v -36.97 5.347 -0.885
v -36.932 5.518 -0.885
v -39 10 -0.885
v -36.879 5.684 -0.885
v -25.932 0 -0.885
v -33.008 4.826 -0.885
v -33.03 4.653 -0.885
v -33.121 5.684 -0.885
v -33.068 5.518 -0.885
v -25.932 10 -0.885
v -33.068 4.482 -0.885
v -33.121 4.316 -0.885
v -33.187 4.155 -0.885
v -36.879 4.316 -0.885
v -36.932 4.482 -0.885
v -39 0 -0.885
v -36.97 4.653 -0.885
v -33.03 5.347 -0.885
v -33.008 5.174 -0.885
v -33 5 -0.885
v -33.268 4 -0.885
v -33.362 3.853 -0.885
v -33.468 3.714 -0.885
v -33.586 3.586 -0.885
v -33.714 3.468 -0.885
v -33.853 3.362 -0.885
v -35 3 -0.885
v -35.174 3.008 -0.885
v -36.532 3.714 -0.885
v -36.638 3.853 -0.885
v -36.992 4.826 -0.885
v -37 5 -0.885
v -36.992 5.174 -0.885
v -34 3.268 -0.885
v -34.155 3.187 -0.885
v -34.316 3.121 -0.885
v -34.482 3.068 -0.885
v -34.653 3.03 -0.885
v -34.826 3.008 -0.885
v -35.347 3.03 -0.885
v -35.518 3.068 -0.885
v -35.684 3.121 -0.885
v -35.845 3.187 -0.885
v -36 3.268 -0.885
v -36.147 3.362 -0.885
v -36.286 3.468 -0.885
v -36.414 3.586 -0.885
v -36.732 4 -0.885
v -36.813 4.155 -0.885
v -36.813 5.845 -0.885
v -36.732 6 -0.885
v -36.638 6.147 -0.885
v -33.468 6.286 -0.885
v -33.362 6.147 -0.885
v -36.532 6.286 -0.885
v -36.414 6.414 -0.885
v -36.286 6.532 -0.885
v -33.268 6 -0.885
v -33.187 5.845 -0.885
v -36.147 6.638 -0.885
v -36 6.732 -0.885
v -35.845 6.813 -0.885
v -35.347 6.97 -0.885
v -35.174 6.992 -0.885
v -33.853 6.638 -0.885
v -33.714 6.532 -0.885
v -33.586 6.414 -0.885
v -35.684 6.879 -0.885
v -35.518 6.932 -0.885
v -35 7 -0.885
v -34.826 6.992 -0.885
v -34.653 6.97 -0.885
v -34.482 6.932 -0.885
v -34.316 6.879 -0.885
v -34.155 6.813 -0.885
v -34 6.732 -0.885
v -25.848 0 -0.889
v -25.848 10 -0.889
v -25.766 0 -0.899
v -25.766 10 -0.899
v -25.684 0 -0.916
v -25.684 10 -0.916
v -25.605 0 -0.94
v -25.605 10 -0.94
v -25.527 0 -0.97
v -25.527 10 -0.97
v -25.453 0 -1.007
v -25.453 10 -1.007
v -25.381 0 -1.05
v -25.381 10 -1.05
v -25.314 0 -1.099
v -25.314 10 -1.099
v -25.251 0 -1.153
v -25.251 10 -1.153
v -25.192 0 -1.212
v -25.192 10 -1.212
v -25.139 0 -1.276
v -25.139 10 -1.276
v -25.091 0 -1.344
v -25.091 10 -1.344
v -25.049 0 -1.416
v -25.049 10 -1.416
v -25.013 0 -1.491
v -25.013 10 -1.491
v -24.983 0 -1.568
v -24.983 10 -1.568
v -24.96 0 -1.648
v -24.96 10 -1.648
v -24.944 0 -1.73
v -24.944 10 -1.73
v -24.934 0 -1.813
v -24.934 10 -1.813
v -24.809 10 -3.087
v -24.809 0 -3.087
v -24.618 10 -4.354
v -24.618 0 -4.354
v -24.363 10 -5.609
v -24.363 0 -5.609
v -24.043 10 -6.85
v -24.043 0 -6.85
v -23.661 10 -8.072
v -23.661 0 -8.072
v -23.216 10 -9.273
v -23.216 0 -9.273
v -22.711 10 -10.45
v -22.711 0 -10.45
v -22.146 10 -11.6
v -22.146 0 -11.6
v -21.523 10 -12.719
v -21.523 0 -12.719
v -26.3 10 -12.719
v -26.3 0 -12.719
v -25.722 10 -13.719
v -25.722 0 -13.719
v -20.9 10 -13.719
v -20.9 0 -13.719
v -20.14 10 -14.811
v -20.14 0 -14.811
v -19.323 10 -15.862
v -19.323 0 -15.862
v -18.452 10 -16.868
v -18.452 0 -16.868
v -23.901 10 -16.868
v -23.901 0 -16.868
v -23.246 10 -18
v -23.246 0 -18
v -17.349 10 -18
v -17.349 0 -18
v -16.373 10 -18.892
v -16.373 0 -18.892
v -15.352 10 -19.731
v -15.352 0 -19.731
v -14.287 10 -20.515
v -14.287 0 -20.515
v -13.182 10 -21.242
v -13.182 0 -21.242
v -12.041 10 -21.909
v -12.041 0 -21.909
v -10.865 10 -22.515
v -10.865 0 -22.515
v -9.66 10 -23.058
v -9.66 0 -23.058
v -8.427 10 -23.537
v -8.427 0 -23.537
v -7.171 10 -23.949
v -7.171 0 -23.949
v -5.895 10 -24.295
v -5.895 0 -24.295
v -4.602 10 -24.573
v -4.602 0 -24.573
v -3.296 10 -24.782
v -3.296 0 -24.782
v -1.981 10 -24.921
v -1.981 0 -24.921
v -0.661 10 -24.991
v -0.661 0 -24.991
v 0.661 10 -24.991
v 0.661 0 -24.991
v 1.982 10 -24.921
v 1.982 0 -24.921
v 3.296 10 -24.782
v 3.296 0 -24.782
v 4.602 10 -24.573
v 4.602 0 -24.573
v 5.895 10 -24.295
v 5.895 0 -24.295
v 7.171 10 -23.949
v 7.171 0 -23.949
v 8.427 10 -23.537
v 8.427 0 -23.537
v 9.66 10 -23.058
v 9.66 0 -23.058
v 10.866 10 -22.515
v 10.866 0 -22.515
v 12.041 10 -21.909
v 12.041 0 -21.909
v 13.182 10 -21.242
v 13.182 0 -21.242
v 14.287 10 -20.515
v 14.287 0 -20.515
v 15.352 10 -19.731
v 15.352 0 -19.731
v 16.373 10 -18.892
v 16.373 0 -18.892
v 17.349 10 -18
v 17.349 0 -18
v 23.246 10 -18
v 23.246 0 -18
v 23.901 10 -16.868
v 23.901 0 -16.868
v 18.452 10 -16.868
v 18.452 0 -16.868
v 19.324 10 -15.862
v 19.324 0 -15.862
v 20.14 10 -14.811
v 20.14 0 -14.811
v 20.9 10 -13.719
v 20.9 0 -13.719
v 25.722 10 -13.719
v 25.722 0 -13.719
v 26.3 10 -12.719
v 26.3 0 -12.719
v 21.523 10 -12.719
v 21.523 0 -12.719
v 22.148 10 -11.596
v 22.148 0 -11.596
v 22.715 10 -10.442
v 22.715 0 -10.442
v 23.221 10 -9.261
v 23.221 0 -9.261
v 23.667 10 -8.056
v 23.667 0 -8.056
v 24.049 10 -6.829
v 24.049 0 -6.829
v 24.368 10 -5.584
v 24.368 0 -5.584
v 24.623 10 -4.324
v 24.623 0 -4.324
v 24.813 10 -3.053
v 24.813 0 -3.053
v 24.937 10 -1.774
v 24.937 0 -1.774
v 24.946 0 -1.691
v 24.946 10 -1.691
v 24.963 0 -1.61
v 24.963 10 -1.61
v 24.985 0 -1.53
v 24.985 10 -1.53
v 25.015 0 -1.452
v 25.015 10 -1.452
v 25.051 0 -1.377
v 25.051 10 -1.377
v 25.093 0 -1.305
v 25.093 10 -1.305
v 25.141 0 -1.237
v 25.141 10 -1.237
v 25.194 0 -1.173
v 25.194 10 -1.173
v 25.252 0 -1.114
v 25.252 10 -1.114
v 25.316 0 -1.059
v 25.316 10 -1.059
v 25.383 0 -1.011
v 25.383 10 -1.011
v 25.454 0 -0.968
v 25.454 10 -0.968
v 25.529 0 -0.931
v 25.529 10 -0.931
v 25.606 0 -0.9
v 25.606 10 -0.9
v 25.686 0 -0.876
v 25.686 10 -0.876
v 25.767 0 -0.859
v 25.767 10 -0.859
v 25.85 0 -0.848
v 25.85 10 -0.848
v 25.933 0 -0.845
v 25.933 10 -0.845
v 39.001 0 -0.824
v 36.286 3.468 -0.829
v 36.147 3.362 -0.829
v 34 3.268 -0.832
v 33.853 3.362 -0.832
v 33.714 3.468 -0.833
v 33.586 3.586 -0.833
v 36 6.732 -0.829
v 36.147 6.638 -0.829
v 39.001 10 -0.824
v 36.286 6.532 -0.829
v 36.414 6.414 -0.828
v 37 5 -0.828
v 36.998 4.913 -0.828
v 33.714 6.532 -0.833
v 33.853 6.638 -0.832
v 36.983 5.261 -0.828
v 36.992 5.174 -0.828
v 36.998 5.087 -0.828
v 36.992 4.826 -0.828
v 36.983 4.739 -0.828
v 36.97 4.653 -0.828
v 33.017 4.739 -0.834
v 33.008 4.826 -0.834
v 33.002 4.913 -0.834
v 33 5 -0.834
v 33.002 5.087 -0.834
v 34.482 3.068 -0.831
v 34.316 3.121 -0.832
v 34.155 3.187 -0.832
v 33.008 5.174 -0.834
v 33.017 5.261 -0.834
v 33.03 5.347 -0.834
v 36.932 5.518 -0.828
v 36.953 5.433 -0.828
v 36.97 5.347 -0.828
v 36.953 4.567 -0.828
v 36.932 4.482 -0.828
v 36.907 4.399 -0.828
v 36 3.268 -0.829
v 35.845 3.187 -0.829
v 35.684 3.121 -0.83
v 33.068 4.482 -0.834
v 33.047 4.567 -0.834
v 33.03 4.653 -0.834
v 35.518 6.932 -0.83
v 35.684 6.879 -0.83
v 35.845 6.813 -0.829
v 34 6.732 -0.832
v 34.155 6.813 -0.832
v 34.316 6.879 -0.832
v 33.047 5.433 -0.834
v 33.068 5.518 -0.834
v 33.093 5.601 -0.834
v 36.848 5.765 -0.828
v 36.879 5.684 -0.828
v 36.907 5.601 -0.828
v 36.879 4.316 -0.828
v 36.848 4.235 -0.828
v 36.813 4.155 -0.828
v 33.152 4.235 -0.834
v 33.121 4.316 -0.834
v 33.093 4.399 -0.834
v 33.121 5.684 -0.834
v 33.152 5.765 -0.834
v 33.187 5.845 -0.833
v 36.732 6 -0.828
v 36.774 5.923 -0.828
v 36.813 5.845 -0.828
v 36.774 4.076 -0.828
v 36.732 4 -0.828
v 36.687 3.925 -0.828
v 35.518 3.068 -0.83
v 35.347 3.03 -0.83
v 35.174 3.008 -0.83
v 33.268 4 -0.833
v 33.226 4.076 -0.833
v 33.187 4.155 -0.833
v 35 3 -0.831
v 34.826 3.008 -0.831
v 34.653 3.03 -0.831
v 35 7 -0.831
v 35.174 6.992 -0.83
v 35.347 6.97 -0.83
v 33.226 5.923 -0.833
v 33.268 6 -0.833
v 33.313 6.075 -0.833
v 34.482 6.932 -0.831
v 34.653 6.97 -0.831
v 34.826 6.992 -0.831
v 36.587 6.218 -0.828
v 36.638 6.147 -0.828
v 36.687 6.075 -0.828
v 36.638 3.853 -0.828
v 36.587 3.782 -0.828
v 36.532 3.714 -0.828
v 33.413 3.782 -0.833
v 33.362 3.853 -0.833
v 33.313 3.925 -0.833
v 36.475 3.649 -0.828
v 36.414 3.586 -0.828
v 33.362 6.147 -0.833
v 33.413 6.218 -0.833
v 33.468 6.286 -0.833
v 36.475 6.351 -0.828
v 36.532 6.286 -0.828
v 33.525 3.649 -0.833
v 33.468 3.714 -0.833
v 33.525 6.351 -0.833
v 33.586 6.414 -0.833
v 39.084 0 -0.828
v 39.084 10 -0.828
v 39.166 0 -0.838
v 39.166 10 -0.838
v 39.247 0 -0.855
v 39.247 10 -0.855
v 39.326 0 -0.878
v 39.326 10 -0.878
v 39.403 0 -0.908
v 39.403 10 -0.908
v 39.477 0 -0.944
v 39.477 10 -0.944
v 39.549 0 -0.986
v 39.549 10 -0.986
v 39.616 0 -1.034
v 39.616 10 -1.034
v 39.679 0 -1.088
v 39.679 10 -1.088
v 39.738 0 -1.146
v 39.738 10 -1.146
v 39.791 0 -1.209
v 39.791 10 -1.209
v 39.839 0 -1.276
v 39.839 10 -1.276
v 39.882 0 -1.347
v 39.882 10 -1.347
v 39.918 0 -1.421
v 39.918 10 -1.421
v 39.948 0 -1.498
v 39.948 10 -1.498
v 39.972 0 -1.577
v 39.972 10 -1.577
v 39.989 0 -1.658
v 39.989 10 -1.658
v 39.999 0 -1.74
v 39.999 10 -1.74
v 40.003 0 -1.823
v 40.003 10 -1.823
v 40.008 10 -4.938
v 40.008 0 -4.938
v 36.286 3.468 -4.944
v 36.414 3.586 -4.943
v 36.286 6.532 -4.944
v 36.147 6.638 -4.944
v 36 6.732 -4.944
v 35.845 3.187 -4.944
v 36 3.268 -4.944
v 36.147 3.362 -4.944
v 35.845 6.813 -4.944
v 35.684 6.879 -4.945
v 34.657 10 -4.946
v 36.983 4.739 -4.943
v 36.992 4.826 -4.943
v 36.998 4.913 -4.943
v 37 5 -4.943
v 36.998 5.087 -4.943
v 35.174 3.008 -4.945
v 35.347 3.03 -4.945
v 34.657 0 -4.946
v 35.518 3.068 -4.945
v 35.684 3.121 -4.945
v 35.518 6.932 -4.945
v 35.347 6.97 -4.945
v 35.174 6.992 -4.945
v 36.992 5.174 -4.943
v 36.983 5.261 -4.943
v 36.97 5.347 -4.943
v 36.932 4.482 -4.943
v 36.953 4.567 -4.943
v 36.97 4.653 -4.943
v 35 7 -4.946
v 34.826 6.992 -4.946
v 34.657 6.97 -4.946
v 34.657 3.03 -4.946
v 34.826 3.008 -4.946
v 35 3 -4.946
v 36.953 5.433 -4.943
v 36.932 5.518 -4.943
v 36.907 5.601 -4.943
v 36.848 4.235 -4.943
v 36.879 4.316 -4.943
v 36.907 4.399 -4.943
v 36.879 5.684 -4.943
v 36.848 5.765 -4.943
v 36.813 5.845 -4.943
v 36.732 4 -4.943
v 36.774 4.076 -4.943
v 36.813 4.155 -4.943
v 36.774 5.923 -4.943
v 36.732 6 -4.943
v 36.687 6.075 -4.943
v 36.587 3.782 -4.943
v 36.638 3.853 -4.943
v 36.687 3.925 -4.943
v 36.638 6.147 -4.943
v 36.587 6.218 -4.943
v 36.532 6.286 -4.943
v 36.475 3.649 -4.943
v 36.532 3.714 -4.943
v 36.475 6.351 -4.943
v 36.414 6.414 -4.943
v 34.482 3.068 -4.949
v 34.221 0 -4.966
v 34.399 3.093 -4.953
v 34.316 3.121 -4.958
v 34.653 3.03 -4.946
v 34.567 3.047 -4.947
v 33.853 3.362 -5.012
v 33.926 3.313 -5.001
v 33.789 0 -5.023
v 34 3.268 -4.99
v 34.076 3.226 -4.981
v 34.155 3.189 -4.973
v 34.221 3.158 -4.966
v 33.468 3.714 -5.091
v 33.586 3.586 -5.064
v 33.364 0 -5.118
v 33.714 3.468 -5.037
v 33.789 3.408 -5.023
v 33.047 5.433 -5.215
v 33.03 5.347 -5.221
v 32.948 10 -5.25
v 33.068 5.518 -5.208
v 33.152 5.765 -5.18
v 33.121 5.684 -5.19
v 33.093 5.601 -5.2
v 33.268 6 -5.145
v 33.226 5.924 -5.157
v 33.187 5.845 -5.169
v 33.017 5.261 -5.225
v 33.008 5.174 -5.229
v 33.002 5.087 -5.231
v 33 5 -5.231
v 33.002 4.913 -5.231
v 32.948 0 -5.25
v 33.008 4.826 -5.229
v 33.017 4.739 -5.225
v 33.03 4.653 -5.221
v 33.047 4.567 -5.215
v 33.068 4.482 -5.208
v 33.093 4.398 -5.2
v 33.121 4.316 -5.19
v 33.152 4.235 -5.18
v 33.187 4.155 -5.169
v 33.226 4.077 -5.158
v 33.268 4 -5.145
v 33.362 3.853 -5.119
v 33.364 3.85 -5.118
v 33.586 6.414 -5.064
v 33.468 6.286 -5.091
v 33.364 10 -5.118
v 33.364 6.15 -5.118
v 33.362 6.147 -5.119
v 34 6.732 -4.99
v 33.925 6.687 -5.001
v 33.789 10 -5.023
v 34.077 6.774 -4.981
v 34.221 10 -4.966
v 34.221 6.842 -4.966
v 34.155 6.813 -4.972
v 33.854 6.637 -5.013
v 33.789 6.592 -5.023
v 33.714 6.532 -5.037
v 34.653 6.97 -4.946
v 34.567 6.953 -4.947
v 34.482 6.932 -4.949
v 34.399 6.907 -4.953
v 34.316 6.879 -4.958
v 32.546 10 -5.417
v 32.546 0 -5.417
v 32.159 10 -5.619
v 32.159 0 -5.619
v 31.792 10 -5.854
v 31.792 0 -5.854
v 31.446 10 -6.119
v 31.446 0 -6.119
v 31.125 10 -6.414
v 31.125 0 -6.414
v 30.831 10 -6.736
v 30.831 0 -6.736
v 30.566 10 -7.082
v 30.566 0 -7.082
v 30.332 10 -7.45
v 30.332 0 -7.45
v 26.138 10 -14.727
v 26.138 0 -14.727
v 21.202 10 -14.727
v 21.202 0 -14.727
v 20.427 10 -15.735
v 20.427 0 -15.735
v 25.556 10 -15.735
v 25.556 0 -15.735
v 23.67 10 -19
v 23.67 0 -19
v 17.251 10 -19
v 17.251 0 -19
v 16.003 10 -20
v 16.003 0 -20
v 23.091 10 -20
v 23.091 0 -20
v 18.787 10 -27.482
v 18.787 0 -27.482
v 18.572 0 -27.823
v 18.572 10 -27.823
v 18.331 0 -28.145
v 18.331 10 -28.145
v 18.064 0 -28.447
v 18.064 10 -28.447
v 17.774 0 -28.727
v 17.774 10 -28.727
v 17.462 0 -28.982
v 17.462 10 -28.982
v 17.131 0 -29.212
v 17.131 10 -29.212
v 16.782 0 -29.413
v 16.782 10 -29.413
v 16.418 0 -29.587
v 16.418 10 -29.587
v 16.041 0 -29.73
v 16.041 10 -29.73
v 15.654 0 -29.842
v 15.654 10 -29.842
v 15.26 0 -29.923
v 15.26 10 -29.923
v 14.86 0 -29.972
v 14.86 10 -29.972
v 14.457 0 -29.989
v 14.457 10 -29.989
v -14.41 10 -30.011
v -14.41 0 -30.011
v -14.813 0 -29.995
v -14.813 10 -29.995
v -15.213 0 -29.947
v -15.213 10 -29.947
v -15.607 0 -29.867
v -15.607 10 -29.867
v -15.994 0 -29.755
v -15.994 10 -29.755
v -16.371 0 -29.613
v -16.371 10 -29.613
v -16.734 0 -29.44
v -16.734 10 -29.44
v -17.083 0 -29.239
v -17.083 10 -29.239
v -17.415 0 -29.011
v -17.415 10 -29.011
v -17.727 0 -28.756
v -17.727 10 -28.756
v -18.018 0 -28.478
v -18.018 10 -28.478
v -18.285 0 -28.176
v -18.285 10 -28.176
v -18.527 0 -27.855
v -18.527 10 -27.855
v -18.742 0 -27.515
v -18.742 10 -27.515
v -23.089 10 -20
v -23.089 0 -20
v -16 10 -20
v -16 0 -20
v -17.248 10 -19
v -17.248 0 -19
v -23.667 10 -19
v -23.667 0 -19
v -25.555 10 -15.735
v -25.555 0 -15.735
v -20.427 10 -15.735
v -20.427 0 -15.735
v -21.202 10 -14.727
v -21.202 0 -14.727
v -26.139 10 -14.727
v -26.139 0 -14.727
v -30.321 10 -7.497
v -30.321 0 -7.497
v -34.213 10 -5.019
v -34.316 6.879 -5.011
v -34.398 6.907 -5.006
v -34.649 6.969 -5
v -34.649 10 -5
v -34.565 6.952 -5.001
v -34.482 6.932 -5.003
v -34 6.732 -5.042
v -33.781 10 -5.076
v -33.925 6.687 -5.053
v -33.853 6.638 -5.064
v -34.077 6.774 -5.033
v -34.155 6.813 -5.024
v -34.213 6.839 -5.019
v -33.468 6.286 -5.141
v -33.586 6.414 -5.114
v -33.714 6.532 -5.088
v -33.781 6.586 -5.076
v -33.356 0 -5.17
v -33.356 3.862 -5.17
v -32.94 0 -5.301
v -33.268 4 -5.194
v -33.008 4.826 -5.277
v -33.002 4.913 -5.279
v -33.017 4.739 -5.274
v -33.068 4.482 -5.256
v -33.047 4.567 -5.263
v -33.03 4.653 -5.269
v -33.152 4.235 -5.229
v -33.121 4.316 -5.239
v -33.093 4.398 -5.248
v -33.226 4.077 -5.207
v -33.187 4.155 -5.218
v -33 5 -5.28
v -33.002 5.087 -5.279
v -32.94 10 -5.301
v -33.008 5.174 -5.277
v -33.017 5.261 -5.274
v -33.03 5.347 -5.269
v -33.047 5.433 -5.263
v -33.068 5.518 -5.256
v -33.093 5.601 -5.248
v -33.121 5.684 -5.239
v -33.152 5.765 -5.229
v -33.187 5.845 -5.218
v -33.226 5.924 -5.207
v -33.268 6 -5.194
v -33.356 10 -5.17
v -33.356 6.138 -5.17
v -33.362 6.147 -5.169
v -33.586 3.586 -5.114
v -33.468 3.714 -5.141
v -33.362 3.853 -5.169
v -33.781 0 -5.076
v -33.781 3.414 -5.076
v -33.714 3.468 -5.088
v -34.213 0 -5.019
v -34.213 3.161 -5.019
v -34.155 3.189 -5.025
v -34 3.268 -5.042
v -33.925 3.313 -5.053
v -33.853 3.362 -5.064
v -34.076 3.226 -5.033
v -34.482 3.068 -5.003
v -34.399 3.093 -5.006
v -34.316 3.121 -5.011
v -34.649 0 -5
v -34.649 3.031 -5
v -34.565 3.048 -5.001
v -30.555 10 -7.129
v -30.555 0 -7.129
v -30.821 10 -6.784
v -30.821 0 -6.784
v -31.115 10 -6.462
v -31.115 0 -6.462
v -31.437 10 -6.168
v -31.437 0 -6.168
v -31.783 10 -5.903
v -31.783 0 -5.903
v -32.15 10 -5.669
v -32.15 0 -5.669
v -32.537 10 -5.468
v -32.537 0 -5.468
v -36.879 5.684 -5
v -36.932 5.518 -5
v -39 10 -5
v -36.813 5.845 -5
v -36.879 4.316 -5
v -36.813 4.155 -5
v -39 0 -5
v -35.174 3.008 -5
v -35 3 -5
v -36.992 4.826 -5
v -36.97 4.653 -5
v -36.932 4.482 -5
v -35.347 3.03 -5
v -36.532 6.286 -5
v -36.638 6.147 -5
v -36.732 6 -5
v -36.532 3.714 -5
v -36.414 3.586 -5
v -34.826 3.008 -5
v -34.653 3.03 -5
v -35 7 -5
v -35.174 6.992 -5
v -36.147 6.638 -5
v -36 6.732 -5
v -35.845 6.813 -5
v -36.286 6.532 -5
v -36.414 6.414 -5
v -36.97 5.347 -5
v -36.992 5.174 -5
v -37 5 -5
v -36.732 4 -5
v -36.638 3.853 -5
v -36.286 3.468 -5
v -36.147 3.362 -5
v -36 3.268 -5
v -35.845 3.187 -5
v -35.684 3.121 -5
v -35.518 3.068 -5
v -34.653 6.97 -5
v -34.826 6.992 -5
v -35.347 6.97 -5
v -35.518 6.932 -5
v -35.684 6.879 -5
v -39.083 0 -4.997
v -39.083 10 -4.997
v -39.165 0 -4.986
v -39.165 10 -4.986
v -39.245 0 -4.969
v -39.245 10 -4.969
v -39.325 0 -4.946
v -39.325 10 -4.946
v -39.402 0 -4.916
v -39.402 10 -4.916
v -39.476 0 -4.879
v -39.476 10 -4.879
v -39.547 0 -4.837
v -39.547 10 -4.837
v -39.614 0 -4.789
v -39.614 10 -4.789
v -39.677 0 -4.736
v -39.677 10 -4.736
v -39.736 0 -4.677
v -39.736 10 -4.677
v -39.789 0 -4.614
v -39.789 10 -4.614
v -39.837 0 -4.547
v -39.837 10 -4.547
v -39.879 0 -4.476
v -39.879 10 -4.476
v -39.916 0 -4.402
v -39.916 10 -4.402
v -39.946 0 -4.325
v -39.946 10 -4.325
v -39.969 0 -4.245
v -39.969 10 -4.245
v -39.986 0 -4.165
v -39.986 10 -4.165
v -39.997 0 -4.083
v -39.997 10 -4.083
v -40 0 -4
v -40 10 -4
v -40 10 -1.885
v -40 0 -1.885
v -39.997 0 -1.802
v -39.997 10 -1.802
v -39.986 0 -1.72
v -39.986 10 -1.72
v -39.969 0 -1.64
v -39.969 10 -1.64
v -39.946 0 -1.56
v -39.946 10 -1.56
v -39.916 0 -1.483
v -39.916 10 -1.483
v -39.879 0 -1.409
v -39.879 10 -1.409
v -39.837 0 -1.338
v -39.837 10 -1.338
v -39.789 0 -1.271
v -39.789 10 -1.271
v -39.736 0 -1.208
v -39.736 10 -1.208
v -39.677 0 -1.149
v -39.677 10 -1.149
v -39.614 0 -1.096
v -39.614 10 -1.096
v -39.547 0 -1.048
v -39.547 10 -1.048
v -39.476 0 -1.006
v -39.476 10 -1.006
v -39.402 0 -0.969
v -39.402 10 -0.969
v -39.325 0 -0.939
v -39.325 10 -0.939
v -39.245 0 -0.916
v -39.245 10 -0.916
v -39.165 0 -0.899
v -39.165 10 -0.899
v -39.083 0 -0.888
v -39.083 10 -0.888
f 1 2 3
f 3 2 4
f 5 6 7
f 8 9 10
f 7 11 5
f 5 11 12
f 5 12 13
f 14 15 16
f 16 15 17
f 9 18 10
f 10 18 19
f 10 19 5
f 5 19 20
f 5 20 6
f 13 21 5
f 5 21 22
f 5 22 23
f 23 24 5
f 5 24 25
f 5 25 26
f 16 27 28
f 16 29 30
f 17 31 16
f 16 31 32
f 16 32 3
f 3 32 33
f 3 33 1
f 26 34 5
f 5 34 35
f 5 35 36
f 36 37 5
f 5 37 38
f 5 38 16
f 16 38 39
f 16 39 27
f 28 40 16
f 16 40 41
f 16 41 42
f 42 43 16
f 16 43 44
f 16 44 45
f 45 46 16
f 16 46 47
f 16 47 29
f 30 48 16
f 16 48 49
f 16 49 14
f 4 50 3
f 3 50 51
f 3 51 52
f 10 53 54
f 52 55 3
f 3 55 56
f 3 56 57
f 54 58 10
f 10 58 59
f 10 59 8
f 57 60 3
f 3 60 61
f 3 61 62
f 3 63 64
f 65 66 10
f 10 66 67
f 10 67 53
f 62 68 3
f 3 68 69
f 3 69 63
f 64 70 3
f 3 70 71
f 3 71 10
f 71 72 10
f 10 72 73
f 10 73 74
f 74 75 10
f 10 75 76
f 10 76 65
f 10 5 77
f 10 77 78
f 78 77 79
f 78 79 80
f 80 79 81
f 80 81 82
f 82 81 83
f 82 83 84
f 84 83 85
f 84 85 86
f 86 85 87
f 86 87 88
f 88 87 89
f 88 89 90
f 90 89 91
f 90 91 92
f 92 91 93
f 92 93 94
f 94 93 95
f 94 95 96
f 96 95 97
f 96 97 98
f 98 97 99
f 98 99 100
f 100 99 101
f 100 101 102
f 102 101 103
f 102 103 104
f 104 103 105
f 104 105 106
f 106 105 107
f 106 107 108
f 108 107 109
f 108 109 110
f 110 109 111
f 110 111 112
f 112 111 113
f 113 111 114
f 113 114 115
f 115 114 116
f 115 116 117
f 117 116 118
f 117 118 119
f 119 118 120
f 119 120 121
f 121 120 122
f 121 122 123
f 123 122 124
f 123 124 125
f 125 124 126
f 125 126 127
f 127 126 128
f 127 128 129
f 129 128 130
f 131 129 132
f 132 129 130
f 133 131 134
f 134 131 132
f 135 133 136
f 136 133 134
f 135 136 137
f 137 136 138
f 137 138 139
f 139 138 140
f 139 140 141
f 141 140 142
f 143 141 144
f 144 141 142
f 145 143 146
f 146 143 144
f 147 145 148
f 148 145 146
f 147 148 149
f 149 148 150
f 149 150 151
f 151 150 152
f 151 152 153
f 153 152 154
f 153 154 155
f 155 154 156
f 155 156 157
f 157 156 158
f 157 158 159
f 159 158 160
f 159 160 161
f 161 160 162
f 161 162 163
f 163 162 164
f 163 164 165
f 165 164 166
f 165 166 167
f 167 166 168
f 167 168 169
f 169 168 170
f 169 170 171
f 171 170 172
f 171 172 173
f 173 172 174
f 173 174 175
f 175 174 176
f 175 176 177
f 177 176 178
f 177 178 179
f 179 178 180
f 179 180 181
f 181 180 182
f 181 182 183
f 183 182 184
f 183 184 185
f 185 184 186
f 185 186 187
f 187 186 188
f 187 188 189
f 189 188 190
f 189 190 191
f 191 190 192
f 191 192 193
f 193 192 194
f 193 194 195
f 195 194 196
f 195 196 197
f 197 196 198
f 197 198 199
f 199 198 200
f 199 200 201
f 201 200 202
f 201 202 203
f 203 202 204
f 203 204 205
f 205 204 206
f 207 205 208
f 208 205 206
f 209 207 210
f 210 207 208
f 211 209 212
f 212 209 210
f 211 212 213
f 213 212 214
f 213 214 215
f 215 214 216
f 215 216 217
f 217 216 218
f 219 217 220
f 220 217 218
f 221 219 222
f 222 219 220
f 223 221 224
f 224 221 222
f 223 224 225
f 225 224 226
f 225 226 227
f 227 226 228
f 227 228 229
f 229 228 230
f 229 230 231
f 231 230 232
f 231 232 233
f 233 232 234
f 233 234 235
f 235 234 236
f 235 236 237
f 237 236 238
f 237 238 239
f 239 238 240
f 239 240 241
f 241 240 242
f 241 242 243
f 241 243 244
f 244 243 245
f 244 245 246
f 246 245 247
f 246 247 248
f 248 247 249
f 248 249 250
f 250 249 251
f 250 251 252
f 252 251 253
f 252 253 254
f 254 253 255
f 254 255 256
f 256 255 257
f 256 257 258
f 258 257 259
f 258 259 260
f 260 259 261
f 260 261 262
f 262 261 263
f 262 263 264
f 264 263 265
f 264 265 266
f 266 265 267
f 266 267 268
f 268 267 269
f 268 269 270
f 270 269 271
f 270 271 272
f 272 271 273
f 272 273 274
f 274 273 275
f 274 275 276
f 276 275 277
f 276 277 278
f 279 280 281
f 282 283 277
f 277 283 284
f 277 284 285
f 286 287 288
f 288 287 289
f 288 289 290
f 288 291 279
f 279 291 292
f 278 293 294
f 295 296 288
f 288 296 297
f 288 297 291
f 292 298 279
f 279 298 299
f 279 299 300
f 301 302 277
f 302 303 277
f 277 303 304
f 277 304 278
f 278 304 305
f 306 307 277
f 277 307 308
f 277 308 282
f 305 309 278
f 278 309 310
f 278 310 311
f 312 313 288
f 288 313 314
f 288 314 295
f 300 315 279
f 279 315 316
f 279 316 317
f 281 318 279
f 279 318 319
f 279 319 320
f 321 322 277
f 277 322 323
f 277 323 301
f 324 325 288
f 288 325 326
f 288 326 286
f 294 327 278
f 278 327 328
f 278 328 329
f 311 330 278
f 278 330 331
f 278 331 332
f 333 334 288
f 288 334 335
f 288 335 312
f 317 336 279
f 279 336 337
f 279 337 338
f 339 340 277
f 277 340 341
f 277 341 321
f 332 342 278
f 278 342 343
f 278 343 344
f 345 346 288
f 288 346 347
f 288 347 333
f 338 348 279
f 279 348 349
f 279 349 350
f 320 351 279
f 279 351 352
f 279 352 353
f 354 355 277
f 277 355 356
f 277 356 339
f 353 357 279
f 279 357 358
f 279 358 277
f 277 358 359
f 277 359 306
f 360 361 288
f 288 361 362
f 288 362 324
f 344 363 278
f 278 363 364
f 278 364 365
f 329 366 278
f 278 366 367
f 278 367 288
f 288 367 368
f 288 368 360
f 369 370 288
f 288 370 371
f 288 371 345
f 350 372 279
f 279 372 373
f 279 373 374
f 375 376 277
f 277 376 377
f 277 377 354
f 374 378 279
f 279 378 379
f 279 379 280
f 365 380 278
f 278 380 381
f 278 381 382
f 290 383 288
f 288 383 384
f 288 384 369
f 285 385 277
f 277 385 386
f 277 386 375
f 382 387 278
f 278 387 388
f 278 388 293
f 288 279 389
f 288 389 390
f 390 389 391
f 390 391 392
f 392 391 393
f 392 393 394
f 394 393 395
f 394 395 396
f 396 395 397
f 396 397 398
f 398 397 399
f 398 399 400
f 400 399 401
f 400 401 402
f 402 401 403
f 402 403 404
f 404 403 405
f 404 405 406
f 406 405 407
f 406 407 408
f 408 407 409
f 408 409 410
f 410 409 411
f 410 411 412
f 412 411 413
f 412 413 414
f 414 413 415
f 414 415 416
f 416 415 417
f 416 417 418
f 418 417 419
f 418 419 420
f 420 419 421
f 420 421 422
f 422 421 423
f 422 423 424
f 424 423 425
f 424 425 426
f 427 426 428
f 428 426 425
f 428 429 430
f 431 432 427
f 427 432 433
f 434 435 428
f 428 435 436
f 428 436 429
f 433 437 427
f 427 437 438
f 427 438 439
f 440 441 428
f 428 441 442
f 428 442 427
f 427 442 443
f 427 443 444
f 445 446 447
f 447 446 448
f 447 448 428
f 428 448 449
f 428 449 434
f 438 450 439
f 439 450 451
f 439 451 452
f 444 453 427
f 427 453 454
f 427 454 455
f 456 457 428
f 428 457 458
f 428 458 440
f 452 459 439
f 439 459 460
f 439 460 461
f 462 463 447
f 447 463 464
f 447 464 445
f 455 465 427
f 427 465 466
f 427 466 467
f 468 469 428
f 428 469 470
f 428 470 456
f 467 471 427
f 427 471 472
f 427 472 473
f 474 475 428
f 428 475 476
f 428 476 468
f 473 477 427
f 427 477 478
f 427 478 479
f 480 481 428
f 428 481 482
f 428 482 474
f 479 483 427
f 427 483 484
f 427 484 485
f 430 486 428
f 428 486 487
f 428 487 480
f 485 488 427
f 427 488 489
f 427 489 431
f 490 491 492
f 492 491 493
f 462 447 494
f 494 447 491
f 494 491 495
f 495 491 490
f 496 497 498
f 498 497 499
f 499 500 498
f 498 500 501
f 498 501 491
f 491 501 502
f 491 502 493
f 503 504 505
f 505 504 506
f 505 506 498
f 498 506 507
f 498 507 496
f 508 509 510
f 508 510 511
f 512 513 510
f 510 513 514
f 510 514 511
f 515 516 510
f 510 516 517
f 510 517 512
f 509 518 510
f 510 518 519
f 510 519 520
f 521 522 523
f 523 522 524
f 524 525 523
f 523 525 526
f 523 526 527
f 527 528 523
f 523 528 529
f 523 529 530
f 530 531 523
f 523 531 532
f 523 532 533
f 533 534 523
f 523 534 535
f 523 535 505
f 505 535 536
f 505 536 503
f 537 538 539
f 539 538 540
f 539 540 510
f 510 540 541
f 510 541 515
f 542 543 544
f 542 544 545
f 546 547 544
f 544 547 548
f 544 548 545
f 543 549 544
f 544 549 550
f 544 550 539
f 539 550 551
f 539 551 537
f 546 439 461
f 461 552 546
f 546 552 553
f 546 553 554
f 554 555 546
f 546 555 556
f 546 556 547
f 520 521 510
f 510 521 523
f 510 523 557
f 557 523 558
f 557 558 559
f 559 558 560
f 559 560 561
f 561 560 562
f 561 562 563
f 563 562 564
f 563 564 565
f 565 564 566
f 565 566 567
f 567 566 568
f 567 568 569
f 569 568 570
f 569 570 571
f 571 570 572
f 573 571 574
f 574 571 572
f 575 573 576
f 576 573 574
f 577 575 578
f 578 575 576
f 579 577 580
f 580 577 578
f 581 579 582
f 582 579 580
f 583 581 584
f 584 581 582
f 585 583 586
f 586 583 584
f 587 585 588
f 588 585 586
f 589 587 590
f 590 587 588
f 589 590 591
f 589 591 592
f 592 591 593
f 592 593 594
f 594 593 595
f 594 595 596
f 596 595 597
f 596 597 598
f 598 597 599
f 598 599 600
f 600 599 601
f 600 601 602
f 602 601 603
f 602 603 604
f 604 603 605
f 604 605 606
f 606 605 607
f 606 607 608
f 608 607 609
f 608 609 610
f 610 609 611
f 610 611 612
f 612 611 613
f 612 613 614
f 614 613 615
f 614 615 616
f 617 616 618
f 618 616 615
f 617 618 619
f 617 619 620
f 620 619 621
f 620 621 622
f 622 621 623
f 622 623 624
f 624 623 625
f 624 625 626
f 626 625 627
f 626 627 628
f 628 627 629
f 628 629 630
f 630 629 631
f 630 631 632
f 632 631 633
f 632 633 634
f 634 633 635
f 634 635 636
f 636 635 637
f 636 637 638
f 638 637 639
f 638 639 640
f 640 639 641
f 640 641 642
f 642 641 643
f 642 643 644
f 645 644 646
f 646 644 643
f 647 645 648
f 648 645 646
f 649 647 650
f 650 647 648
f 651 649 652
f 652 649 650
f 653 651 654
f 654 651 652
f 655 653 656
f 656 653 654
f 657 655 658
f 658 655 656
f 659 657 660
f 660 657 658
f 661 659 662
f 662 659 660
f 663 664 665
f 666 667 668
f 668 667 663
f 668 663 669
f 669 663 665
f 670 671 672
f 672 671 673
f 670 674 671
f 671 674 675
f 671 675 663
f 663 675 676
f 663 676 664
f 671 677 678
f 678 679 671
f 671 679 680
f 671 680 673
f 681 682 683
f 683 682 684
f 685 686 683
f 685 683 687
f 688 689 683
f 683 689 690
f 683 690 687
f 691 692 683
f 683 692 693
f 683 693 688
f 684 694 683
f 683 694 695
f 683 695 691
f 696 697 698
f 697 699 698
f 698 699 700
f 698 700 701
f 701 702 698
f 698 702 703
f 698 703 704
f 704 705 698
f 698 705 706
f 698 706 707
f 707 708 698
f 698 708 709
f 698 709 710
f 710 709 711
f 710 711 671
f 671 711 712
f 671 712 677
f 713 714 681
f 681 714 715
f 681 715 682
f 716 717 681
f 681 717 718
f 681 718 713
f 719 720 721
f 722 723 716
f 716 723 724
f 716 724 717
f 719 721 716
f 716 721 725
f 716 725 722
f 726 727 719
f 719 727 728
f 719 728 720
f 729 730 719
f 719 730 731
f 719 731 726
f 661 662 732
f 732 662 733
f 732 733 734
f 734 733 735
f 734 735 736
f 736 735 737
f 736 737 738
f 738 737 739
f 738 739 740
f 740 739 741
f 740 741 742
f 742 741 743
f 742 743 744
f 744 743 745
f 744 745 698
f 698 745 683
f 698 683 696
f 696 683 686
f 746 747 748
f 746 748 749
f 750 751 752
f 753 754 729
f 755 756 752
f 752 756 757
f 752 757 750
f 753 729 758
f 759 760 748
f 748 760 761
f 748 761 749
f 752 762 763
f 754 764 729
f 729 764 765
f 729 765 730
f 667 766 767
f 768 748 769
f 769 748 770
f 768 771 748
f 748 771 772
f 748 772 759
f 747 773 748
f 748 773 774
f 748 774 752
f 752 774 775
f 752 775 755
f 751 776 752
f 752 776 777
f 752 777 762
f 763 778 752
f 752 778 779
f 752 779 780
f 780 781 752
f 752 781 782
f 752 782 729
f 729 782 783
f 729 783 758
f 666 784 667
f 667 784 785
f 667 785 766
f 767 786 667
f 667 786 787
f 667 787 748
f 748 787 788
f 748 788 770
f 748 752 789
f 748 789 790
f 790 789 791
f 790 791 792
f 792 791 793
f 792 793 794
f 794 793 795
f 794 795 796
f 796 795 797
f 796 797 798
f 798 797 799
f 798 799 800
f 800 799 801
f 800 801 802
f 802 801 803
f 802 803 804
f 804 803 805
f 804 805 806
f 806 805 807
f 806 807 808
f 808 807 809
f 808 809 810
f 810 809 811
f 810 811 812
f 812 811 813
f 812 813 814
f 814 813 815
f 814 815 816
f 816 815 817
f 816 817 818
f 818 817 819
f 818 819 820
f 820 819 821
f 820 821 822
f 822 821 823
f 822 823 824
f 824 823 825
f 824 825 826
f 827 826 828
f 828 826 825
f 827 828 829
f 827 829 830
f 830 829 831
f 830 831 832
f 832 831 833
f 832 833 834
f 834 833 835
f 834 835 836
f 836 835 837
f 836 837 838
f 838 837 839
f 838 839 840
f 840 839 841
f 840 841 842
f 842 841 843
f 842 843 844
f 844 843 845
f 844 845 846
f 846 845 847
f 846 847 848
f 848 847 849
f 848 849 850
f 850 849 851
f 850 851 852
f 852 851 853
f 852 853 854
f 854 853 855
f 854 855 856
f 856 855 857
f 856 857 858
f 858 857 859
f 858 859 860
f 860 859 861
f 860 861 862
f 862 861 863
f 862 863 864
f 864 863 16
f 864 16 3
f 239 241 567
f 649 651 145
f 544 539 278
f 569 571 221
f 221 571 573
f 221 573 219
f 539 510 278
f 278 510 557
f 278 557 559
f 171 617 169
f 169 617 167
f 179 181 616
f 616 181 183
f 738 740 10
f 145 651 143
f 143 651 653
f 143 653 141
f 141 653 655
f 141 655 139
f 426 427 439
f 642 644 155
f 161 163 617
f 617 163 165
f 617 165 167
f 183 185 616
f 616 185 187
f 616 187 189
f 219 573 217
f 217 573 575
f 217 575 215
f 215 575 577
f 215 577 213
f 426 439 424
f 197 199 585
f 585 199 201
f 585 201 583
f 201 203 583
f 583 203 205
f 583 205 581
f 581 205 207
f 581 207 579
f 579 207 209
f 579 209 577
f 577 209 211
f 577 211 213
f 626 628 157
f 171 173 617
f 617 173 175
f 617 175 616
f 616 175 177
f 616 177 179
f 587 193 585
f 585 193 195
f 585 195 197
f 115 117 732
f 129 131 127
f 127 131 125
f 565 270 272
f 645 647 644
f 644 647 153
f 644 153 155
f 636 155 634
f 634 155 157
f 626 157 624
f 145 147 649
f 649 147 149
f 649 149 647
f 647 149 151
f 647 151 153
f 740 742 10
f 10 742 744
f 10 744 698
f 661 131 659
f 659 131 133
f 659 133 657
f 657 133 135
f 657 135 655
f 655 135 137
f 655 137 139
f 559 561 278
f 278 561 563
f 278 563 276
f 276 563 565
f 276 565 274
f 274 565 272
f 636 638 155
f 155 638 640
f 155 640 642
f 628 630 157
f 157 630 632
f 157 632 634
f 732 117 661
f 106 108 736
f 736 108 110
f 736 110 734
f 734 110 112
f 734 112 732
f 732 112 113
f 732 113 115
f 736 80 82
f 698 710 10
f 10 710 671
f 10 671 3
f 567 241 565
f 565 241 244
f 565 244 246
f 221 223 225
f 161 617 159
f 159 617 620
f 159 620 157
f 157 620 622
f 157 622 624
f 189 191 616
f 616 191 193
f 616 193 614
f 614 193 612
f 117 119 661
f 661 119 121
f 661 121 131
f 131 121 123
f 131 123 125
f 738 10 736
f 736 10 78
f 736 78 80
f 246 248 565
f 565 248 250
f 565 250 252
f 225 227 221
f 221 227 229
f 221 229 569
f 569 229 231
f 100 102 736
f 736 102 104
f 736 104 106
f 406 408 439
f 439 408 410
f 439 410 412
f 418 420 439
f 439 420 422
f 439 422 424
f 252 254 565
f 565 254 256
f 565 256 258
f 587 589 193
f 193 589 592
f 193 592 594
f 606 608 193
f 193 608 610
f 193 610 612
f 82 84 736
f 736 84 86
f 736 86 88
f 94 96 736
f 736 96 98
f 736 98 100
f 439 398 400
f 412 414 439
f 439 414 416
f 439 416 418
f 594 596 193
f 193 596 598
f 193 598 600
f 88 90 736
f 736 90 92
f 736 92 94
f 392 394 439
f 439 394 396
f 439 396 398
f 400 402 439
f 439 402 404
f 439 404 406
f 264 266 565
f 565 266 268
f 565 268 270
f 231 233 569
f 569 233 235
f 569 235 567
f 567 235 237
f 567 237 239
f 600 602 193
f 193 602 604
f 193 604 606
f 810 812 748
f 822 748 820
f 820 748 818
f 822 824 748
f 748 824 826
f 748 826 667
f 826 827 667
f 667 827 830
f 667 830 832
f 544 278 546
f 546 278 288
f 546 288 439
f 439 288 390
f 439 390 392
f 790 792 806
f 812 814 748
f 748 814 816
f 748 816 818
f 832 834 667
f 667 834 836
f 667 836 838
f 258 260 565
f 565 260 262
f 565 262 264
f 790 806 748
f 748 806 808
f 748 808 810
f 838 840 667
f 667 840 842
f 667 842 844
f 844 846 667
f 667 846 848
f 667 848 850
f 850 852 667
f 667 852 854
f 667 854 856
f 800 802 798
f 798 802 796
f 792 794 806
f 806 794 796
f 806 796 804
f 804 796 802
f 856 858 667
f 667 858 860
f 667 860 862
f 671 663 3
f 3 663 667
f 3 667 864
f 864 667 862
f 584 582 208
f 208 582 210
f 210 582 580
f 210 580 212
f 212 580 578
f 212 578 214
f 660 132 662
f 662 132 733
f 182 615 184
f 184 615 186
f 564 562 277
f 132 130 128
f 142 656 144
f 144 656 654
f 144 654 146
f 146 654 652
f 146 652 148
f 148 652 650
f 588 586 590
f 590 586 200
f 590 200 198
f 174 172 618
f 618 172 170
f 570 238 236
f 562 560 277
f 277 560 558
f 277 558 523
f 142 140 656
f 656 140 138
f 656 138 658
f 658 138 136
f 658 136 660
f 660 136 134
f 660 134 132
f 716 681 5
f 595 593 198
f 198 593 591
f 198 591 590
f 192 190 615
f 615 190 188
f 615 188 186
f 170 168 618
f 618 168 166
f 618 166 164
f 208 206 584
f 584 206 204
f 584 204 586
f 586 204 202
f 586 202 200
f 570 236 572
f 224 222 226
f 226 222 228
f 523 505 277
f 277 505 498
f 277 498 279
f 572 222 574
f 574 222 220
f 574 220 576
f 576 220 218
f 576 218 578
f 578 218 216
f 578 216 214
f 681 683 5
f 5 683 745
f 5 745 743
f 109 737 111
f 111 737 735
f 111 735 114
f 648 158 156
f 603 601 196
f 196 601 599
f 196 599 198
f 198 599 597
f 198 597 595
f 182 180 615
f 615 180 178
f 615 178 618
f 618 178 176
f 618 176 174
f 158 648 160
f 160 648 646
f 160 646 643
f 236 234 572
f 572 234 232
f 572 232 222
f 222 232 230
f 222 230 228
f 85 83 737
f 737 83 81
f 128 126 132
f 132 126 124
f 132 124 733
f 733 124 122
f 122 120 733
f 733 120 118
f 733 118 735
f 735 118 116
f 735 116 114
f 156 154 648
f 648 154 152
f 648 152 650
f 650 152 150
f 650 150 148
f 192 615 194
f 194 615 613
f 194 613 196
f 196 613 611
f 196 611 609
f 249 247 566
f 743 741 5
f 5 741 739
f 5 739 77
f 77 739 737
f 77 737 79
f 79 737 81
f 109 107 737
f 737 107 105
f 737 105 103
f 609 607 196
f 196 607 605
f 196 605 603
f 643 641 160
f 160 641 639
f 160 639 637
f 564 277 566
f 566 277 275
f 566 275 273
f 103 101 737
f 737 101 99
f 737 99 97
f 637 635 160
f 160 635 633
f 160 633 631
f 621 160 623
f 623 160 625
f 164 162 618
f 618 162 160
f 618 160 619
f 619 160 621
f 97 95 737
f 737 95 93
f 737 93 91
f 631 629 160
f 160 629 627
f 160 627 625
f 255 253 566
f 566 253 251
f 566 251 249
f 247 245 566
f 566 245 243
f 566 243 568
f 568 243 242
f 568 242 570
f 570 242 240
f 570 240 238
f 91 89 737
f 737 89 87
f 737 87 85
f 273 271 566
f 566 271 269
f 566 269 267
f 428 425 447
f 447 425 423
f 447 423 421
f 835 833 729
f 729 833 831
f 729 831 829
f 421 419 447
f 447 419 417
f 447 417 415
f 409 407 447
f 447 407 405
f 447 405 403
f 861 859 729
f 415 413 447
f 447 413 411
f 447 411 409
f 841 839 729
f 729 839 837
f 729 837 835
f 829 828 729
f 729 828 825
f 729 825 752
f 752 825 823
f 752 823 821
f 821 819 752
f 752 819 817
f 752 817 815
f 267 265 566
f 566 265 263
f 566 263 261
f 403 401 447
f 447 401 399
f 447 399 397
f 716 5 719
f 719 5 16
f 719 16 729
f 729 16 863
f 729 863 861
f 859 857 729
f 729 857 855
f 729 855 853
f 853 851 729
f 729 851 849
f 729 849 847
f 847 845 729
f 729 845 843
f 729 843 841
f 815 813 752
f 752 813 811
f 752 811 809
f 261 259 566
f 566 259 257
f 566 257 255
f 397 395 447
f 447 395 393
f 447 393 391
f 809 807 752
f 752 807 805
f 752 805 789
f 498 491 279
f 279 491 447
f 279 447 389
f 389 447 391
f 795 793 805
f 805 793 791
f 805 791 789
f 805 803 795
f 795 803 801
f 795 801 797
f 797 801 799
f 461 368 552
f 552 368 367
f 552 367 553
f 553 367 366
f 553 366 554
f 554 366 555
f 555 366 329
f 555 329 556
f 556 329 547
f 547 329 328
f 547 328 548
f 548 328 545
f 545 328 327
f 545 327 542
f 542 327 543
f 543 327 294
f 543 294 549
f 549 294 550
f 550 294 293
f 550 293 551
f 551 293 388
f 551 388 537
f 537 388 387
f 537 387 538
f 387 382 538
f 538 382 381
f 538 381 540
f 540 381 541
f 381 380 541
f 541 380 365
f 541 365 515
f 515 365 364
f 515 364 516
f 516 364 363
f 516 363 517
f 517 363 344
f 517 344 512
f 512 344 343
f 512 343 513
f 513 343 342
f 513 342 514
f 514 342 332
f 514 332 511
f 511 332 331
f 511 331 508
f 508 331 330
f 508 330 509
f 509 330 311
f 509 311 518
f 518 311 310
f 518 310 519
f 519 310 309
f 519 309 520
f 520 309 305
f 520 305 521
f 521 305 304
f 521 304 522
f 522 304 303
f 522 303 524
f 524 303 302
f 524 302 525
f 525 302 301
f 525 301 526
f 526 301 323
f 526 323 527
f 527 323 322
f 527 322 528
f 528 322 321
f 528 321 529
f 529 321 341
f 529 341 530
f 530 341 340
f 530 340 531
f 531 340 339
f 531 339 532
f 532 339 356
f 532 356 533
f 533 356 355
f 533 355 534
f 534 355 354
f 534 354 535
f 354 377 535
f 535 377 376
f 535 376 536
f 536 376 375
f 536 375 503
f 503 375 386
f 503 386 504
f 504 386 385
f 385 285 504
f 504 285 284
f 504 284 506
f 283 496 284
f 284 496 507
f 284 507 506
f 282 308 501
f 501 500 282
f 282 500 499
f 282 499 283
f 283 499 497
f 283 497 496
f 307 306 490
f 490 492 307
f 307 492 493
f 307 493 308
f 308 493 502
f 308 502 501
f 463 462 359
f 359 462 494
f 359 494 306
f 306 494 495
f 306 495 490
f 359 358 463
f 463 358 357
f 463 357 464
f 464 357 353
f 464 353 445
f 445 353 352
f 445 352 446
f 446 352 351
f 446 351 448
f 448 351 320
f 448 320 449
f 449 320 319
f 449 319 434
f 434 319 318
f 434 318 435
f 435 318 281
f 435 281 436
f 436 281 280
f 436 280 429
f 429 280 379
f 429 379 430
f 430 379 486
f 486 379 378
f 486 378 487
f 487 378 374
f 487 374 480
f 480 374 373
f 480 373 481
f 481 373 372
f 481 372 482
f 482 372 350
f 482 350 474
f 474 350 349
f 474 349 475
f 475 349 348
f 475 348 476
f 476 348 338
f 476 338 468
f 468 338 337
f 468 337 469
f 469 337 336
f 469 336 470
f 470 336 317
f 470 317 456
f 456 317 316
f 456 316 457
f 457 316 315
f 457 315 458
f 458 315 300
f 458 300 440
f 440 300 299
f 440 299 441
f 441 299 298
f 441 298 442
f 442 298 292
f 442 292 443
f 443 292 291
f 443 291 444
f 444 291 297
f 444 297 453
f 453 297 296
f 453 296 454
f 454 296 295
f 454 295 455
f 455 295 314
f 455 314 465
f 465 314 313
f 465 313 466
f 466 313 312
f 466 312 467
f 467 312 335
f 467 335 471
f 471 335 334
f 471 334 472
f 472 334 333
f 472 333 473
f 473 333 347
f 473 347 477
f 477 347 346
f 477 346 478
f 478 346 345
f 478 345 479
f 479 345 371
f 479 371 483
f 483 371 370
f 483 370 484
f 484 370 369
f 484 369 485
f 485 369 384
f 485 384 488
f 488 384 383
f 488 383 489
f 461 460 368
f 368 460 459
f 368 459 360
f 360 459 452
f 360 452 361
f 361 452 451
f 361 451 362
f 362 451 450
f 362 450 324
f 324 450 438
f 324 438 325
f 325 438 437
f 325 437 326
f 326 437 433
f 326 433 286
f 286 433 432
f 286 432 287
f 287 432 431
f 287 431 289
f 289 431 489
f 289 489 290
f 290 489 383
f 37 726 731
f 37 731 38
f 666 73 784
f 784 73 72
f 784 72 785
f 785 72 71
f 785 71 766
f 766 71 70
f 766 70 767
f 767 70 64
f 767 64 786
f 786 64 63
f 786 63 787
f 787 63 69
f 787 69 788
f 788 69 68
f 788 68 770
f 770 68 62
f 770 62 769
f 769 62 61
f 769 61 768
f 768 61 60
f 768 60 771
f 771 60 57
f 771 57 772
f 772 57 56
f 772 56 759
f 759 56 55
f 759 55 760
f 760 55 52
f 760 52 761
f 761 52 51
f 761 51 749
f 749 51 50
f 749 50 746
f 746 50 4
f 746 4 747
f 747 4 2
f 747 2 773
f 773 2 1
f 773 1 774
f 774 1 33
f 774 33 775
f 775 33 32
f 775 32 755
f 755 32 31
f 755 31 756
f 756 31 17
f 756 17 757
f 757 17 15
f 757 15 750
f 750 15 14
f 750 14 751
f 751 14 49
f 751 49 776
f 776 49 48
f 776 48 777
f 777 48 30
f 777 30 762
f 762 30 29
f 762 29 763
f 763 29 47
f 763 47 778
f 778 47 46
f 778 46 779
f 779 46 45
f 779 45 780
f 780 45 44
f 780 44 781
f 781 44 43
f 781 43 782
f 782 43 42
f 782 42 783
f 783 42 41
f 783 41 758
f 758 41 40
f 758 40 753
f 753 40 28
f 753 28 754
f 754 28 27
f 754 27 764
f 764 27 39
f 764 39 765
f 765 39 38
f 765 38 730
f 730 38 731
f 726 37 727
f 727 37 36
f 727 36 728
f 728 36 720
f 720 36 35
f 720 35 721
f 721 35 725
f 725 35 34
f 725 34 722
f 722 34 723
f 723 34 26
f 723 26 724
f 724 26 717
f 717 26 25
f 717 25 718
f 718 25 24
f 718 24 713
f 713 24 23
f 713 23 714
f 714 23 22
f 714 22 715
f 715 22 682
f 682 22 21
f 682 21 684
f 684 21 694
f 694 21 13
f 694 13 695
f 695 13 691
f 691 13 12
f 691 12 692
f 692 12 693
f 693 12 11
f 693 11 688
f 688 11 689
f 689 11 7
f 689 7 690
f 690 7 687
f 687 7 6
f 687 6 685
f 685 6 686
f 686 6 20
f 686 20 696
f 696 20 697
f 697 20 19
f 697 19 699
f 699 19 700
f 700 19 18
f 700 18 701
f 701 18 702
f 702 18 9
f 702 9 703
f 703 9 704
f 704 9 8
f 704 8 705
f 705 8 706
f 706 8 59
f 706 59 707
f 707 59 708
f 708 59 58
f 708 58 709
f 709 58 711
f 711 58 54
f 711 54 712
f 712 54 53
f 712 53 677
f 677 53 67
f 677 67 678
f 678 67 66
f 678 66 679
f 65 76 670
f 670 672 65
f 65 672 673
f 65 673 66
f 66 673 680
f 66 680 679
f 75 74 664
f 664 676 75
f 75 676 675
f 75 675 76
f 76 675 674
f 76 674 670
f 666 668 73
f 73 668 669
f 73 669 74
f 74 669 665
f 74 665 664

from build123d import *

# Parameters (mm, degrees)
EXTRUDE_1_DEPTH     = 10
SKETCH_2_R          = 2
CUT_EXTRUDE_1_DEPTH = 10


with BuildPart() as part:
    # 草图1 → 凸台-拉伸1 (new body)
    with BuildSketch(Plane(origin=(0, 0, 0), x_dir=(1, 0, 0), z_dir=(0, 1, 0))):
        with BuildLine():
            Line((-39, 0.885049463), (-25.931575126, 0.885049463))
            ThreePointArc((-25.931575126, 0.885049463), (-25.250583901, 1.152757888), (-24.934206852, 1.81254756))
            ThreePointArc((-24.934206852, 1.81254756), (-23.860011776, 7.463232411), (-21.522796165, 12.718853928))
            Line((-21.522796165, 12.718853928), (-26.30015626, 12.718853928))
            Line((-26.30015626, 12.718853928), (-25.721769935, 13.718853928))
            Line((-25.721769935, 13.718853928), (-20.899594419, 13.718853928))
            ThreePointArc((-20.899594419, 13.718853928), (-19.738763969, 15.342137953), (-18.45215564, 16.867659952))
            Line((-18.45215564, 16.867659952), (-23.900543591, 16.867659952))
            Line((-23.900543591, 16.867659952), (-23.245613592, 18))
            Line((-23.245613592, 18), (-17.349351573, 18))
            ThreePointArc((-17.349351573, 18), (0, 25), (17.349351573, 18))
            Line((17.349351573, 18), (23.245613592, 18))
            Line((23.245613592, 18), (23.900543591, 16.867659952))
            Line((23.900543591, 16.867659952), (18.45215564, 16.867659952))
            ThreePointArc((18.45215564, 16.867659952), (19.738763969, 15.342137953), (20.899594419, 13.718853928))
            Line((20.899594419, 13.718853928), (25.721769935, 13.718853928))
            Line((25.721769935, 13.718853928), (26.30015626, 12.718853928))
            Line((26.30015626, 12.718853928), (21.522796165, 12.718853928))
            ThreePointArc((21.522796165, 12.718853928), (23.865801222, 7.44469825), (24.936992355, 1.773812925))
            ThreePointArc((24.936992355, 1.773812925), (25.252344114, 1.113532593), (25.932918663, 0.844766649))
            Line((25.932918663, 0.844766649), (39.00132777, 0.82446634))
            ThreePointArc((39.00132777, 0.82446634), (39.708888674, 1.116260796), (40.002879949, 1.822911748))
            Line((40.002879949, 1.822911748), (40.00771867, 4.937858527))
            Line((40.00771867, 4.937858527), (34.656523892, 4.946171008))
            ThreePointArc((34.656523892, 4.946171008), (32.159247749, 5.618953494), (30.332223376, 7.44952891))
            Line((30.332223376, 7.44952891), (26.1380565, 14.727086916))
            Line((26.1380565, 14.727086916), (21.201804646, 14.727086916))
            Line((21.201804646, 14.727086916), (20.426778105, 15.735319903))
            Line((20.426778105, 15.735319903), (25.55547359, 15.735319903))
            Line((25.55547359, 15.735319903), (23.669823804, 18.999997983))
            Line((23.669823804, 18.999997983), (17.250673347, 18.999997983))
            Line((17.250673347, 18.999997983), (16.002596538, 19.999997983))
            Line((16.002596538, 19.999997983), (23.091437479, 19.999997983))
            Line((23.091437479, 19.999997983), (18.787180185, 27.482043412))
            ThreePointArc((18.787180185, 27.482043412), (16.958217309, 29.315990717), (14.457053173, 29.98878035))
            Line((14.457053173, 29.98878035), (-14.410451579, 30.011201553))
            ThreePointArc((-14.410451579, 30.011201553), (-16.910971111, 29.343270507), (-18.742519025, 27.514565487))
            Line((-18.742519025, 27.514565487), (-23.088840941, 20))
            Line((-23.088840941, 20), (-16, 20))
            Line((-16, 20), (-17.248076809, 19))
            Line((-17.248076809, 19), (-23.667227267, 19))
            Line((-23.667227267, 19), (-25.55547359, 15.735319903))
            Line((-25.55547359, 15.735319903), (-20.426778105, 15.735319903))
            Line((-20.426778105, 15.735319903), (-21.201804646, 14.727086916))
            Line((-21.201804646, 14.727086916), (-26.138621763, 14.727086916))
            Line((-26.138621763, 14.727086916), (-30.320614786, 7.496637574))
            ThreePointArc((-30.320614786, 7.496637574), (-32.150480545, 5.668902441), (-34.648798766, 5))
            Line((-34.648798766, 5), (-39, 5))
            ThreePointArc((-39, 5), (-39.707106781, 4.707106781), (-40, 4))
            Line((-40, 4), (-40, 1.885049463))
            ThreePointArc((-40, 1.885049463), (-39.707106781, 1.177942682), (-39, 0.885049463))
        make_face()
    extrude(amount=EXTRUDE_1_DEPTH)

    # 草图2 → 切除-拉伸1 (cut)
    with BuildSketch(Plane.XY):
        with Locations((35, 5)):
            Circle(SKETCH_2_R)
        with Locations(Location((-35, 5, 0), (0, 0, 79.886387813))):
            Circle(SKETCH_2_R)
    extrude(amount=-CUT_EXTRUDE_1_DEPTH, mode=Mode.SUBTRACT)


solid = part.part
